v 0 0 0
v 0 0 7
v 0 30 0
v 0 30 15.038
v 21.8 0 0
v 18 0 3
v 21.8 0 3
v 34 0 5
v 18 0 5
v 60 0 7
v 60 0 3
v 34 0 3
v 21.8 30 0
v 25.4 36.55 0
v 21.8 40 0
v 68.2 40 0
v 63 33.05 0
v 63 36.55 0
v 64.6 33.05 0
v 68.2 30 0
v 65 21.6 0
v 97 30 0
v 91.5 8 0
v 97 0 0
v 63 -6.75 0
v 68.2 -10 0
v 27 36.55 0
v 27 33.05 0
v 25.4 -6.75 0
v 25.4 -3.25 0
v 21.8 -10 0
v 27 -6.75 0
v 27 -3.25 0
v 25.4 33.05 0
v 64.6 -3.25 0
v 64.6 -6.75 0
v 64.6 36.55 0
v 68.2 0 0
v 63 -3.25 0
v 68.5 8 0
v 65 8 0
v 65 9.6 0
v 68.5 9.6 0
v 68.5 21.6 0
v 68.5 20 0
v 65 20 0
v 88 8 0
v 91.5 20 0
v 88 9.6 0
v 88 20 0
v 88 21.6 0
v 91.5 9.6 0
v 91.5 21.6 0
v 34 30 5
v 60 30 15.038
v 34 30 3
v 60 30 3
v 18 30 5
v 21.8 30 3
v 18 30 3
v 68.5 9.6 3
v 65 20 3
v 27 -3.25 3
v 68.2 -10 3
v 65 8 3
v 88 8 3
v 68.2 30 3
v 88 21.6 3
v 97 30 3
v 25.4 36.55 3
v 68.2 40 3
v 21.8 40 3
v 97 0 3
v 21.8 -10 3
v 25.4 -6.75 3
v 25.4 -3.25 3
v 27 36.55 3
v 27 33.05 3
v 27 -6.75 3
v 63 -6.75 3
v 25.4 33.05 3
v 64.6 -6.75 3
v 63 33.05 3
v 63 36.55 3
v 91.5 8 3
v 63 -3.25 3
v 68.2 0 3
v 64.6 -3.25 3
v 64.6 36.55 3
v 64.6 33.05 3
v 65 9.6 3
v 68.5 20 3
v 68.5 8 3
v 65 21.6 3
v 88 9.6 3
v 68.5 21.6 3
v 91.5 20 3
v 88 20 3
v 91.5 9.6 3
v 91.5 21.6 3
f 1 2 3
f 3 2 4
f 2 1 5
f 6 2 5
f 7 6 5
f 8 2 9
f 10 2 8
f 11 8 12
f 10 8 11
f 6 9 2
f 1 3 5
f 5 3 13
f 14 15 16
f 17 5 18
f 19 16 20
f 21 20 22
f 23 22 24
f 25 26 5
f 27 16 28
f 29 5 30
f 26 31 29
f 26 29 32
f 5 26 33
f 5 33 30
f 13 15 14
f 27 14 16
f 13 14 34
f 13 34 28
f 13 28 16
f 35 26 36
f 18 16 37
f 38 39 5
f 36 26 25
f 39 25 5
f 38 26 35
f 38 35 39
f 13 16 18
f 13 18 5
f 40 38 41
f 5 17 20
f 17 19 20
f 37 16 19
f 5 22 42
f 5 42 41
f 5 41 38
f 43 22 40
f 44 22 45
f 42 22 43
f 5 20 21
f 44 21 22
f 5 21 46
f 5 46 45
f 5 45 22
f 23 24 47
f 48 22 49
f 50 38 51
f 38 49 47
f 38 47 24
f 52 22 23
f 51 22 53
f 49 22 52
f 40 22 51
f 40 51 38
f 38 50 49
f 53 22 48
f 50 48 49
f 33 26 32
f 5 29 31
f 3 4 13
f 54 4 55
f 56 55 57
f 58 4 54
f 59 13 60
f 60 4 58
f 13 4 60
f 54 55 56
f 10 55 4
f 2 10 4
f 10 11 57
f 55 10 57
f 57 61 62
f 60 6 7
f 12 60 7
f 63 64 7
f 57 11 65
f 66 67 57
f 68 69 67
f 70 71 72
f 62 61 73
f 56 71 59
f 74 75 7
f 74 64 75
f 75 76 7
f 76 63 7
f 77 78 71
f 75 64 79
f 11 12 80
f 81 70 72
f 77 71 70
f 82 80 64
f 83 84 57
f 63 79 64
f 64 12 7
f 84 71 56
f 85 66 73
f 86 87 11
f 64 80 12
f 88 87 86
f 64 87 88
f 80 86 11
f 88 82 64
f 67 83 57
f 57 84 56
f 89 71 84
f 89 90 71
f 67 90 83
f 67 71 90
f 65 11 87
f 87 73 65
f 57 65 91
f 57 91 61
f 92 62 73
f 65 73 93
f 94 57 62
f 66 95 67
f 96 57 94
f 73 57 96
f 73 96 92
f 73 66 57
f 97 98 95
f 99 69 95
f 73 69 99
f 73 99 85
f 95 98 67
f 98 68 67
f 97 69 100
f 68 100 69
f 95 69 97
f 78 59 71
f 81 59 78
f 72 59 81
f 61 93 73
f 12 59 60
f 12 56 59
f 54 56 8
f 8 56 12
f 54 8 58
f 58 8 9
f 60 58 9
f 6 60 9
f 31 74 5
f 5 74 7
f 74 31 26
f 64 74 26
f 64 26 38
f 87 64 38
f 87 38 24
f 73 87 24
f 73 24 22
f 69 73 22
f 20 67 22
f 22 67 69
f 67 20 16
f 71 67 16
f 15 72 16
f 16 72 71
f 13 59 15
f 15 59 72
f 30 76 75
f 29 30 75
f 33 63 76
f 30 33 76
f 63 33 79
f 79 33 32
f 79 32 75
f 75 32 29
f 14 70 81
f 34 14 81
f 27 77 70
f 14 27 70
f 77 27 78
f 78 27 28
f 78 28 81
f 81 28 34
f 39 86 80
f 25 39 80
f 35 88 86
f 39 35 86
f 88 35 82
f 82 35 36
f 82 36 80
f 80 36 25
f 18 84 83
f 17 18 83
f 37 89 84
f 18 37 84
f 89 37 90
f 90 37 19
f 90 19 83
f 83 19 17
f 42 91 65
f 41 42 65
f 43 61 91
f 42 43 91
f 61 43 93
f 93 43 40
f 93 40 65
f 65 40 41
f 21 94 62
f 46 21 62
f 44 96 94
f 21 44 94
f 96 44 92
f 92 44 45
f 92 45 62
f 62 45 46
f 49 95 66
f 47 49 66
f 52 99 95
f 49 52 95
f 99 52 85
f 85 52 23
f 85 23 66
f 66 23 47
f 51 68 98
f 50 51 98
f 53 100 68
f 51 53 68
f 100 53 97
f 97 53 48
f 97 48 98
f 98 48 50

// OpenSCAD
$fn = 90;

base_height = 3; // Height of base plate

plate_width = 40;       // Width of plate that holder will be mounted on.
plate_hole_offset  = 2; // I use small cutouts on my plate to prevent slipping.
                        // The value here will be substracted from the
                        // platewidth when calucalting hole position.

gopro_angle = 15; // Angle of gopro mount plate

zip_hole_height = 1.6; // Zip tie mounting hole width
zip_hole_width = 3.5;  // Zip tie mounting hole length

main();

module main() {
    union() {
        base_plate();

        translate([0, 0, base_height])
            gopro_mount();
    }
}

module base_plate() {
    gopro_width = 60;
    ccd_width = 34;
    spacing = 3;
    total_width = gopro_width + spacing + ccd_width;
    difference() {
        union() {
            // Base
            cube([total_width, 30, base_height]);

            // Mounting tounges
            translate([45 - plate_width / 2, 0, 0]) { // Will center the lens ontop of the plate
                // Upper
                #translate([-zip_hole_height * 2, 30 - 0.2, 0]) {
                    difference() {
                        // Plate
                        cube([plate_width + zip_hole_height * 4, 10 + 0.2, base_height]);

                        // Holes
                        translate([0, (10 - zip_hole_width) / 2, -0.2]) {

                            // Left
                            translate([zip_hole_height + plate_hole_offset, 0, 0])
                                cube([zip_hole_height, zip_hole_width, base_height + 0.4]);

                            // Right
                            translate([plate_width + zip_hole_height * 2 - plate_hole_offset, 0, 0])
                                cube([zip_hole_height, zip_hole_width, base_height + 0.4]);
                        }
                    }
                }

                // Lower
                translate([-zip_hole_height * 2, -10, 0]) {
                    difference() {
                        // Plate
                        cube([plate_width + zip_hole_height * 4, 10 + 0.2, base_height]);

                        // Holes
                        translate([0, (10 - zip_hole_width) / 2, -0.2]) {

                            // Left
                            translate([zip_hole_height + plate_hole_offset, 0, 0])
                                cube([zip_hole_height, zip_hole_width, base_height + 0.4]);

                            // Right
                            translate([plate_width  - plate_hole_offset + zip_hole_height * 2, 0, 0])
                                cube([zip_hole_height, zip_hole_width, base_height + 0.4]);
                        }
                    }
                }

            }
        }

        // CCD holes
        translate([gopro_width + spacing, 0, 0]) { // Offset to put CCD right of gopro
            // Upper
            translate([2, 20, -0.2]) { // Offset for left CCD mounting hole
                cube([zip_hole_width, zip_hole_height, base_height + 0.4]);
                translate([23, 0, 0]) { // Right
                    cube([zip_hole_width, zip_hole_height, base_height + 0.4]);
                }
            }

            // Lower
            translate([2, 8, -0.2]) { // Offset for left CCD mounting hole
                cube([zip_hole_width, zip_hole_height, base_height + 0.4]);
                translate([23, 0, 0]) { // Right
                    cube([zip_hole_width, zip_hole_height, base_height + 0.4]);
                }
            }
        }
    }
}

module gopro_mount() {
    gopro_width = 60;
    gopro_depth = 30;
    strap_width = 16;
    strap_height = 2;
    strap_offset = 18; // Offset from left to beginning strap cutout
    difference() {
        cube([gopro_width, gopro_depth, gopro_depth]);

        translate([-0.5, 0, 4]) {
            rotate(a = gopro_angle, v = [1, 0, 0])
                cube([gopro_width + 1, gopro_depth * 2, gopro_depth]);
        }

        translate([strap_offset, -0.2, -0.2])
            cube([strap_width, gopro_depth + 0.4, strap_height + 0.2]);
    }
}

module gopro_holder() {
    difference() {
        cube([64, 34, 4]);

        translate([2, 2, 2])
            cube([60, 30, 10]);
    }
}
